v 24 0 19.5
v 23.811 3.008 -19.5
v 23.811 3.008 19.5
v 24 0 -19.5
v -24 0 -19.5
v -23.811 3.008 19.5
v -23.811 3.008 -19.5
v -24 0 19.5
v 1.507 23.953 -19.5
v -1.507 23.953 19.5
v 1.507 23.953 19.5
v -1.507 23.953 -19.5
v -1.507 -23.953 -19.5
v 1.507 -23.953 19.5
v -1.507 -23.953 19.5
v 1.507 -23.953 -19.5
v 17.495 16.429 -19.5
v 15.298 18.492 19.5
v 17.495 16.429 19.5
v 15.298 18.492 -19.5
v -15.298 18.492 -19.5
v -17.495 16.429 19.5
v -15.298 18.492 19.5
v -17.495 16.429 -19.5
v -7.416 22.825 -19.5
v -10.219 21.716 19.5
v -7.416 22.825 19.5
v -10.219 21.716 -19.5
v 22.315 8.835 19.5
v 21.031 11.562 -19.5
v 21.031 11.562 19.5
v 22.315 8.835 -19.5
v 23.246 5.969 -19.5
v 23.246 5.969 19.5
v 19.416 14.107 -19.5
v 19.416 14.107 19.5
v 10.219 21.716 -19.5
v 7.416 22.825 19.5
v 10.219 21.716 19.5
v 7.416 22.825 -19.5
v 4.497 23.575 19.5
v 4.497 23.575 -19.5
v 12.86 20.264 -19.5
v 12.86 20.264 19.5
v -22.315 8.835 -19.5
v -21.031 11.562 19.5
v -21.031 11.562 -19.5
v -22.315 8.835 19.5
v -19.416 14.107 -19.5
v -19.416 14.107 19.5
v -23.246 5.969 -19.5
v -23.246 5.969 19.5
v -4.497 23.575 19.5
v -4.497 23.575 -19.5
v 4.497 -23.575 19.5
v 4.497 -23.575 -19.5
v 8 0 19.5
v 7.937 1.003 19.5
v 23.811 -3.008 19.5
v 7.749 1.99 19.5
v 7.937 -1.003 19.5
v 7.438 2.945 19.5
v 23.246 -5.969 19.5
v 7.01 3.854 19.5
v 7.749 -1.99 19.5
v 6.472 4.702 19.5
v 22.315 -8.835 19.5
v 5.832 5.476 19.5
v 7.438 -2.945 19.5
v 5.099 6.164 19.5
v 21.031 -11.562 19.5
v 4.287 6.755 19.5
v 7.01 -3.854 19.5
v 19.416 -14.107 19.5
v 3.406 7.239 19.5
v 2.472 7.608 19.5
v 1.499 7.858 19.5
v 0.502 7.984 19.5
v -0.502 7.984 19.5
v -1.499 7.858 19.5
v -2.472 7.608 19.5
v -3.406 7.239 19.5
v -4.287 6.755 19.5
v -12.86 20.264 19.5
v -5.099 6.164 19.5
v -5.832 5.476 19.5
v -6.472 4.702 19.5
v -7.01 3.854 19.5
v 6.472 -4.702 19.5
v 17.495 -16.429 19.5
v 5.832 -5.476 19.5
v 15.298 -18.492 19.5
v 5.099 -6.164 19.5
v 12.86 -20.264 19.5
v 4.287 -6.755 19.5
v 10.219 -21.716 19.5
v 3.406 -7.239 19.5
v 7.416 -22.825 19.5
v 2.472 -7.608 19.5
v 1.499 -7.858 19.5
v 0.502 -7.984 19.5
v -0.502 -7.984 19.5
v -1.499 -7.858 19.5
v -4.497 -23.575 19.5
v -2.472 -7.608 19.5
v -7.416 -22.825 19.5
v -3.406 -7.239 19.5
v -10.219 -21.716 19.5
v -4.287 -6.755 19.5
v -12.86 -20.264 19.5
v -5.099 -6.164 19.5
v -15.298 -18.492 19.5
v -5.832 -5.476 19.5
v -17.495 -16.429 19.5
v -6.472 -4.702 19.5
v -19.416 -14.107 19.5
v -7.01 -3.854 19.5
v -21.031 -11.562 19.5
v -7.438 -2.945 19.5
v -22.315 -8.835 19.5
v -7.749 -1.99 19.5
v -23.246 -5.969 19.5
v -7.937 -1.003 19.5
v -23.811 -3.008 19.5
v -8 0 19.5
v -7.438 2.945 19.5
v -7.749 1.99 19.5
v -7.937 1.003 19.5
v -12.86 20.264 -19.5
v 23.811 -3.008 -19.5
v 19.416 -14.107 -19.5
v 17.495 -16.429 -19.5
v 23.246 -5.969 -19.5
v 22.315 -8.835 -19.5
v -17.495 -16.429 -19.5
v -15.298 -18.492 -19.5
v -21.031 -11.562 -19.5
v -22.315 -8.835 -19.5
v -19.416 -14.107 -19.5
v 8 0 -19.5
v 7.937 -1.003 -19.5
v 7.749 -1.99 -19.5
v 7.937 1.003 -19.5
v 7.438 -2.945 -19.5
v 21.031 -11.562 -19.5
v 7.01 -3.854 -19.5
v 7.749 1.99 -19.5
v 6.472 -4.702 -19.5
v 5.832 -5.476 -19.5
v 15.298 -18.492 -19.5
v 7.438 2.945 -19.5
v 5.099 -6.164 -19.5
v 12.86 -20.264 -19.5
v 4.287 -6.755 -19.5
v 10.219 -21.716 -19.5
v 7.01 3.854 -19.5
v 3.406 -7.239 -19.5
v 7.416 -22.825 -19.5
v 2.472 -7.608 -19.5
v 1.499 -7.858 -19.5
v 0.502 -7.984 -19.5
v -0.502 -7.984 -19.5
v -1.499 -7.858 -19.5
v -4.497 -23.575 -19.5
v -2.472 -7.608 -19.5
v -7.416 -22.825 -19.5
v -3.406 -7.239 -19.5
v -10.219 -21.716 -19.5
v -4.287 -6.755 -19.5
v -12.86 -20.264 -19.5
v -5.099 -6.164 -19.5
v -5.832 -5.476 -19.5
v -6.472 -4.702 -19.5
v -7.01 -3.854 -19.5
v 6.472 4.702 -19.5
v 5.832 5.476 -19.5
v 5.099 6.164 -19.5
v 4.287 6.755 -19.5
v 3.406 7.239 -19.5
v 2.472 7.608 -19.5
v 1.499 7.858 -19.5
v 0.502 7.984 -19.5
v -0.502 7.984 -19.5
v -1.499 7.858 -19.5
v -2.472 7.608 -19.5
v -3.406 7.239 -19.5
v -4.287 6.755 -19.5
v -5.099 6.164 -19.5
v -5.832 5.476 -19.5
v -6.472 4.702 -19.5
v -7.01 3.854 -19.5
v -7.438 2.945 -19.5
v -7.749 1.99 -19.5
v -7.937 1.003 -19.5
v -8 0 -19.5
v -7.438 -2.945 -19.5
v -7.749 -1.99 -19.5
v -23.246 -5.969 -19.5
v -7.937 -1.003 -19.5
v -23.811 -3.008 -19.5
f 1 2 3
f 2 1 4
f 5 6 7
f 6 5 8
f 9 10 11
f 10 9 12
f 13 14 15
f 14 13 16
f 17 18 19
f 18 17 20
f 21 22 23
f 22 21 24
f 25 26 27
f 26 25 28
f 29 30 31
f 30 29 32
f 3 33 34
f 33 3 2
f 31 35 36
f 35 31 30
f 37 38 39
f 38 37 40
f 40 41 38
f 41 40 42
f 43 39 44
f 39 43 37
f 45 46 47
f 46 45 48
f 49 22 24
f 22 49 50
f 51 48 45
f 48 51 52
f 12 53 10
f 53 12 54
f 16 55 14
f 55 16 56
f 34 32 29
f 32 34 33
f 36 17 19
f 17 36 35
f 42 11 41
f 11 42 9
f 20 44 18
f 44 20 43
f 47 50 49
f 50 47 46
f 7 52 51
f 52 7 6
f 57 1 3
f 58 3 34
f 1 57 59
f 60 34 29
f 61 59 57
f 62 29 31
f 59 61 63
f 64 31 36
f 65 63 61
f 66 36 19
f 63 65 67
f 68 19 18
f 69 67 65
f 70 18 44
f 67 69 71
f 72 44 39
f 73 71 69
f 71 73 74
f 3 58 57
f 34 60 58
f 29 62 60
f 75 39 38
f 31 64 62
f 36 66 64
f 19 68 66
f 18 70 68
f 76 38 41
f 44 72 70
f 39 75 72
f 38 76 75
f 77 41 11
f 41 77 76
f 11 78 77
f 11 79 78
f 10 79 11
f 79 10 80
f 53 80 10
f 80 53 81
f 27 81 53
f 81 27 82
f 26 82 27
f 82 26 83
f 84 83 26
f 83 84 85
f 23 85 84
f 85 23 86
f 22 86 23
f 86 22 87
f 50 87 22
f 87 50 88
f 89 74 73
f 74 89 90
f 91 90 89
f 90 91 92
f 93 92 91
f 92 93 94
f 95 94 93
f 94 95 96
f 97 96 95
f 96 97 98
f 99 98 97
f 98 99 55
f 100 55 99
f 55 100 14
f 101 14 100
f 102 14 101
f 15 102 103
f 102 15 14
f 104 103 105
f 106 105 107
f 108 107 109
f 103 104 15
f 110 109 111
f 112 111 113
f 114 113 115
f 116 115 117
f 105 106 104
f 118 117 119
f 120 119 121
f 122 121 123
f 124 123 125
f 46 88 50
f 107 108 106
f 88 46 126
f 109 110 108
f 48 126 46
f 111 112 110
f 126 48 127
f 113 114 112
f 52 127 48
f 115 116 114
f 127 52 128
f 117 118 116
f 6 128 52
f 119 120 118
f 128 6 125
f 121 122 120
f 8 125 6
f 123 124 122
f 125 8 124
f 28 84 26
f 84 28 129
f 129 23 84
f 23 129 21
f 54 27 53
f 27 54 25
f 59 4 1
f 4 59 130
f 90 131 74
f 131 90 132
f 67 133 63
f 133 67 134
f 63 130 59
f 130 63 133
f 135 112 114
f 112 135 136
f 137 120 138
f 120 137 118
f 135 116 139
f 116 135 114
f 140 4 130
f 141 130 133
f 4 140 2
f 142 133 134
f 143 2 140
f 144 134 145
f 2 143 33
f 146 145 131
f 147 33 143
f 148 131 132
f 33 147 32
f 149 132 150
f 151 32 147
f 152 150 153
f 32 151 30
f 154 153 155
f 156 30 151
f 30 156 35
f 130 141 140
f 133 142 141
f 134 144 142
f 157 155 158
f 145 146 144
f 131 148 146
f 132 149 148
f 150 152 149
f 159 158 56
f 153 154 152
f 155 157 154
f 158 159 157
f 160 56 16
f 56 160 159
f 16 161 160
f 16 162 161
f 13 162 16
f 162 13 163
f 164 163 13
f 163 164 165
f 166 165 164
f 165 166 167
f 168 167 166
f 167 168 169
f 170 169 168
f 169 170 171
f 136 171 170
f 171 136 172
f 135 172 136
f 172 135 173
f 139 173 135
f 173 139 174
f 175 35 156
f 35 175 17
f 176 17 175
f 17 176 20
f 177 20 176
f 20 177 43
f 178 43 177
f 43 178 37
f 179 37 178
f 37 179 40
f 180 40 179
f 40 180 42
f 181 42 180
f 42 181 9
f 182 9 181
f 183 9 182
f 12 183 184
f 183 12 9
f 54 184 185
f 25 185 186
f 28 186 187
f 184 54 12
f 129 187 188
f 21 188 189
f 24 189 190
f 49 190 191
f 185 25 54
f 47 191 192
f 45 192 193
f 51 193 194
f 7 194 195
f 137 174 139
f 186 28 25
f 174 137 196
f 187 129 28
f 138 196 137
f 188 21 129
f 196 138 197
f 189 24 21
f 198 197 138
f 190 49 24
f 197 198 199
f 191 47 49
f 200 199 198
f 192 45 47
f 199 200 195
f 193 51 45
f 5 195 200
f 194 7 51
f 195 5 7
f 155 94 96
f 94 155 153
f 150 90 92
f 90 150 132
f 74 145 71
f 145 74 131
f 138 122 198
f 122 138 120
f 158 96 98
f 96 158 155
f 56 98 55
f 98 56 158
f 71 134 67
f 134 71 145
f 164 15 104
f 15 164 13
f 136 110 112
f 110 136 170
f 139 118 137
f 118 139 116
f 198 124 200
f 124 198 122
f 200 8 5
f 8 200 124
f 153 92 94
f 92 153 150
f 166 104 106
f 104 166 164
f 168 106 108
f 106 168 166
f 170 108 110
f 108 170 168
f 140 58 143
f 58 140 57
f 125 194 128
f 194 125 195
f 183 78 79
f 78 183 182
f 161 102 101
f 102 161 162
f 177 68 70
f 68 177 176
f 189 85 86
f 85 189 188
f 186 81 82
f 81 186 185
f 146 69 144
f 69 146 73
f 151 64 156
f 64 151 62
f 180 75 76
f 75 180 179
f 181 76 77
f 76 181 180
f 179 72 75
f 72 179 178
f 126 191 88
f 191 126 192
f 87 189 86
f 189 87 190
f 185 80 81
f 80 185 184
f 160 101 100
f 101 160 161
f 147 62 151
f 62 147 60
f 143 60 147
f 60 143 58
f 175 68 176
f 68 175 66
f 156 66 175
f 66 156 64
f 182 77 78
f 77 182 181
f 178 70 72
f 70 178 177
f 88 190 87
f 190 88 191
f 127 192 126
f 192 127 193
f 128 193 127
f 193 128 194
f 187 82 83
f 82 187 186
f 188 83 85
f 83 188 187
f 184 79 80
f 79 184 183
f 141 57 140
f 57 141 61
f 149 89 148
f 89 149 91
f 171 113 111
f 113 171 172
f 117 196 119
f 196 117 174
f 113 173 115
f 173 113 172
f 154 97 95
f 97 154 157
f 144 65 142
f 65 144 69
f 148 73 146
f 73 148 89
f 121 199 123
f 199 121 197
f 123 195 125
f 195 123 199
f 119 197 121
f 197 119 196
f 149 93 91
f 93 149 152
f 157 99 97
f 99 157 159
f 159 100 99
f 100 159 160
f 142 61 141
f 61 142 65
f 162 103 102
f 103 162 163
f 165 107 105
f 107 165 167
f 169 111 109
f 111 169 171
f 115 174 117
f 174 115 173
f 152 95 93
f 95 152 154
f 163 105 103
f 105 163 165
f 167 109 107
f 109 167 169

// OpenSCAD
$fn = 50;


difference() {
	union() {
		translate(v = [0, 0, -19.5000000000]) {
			cylinder(h = 39, r = 24.0000000000);
		}
	}
	union() {
		translate(v = [0, 0, -100.0000000000]) {
			cylinder(h = 200, r = 8);
		}
	}
}
